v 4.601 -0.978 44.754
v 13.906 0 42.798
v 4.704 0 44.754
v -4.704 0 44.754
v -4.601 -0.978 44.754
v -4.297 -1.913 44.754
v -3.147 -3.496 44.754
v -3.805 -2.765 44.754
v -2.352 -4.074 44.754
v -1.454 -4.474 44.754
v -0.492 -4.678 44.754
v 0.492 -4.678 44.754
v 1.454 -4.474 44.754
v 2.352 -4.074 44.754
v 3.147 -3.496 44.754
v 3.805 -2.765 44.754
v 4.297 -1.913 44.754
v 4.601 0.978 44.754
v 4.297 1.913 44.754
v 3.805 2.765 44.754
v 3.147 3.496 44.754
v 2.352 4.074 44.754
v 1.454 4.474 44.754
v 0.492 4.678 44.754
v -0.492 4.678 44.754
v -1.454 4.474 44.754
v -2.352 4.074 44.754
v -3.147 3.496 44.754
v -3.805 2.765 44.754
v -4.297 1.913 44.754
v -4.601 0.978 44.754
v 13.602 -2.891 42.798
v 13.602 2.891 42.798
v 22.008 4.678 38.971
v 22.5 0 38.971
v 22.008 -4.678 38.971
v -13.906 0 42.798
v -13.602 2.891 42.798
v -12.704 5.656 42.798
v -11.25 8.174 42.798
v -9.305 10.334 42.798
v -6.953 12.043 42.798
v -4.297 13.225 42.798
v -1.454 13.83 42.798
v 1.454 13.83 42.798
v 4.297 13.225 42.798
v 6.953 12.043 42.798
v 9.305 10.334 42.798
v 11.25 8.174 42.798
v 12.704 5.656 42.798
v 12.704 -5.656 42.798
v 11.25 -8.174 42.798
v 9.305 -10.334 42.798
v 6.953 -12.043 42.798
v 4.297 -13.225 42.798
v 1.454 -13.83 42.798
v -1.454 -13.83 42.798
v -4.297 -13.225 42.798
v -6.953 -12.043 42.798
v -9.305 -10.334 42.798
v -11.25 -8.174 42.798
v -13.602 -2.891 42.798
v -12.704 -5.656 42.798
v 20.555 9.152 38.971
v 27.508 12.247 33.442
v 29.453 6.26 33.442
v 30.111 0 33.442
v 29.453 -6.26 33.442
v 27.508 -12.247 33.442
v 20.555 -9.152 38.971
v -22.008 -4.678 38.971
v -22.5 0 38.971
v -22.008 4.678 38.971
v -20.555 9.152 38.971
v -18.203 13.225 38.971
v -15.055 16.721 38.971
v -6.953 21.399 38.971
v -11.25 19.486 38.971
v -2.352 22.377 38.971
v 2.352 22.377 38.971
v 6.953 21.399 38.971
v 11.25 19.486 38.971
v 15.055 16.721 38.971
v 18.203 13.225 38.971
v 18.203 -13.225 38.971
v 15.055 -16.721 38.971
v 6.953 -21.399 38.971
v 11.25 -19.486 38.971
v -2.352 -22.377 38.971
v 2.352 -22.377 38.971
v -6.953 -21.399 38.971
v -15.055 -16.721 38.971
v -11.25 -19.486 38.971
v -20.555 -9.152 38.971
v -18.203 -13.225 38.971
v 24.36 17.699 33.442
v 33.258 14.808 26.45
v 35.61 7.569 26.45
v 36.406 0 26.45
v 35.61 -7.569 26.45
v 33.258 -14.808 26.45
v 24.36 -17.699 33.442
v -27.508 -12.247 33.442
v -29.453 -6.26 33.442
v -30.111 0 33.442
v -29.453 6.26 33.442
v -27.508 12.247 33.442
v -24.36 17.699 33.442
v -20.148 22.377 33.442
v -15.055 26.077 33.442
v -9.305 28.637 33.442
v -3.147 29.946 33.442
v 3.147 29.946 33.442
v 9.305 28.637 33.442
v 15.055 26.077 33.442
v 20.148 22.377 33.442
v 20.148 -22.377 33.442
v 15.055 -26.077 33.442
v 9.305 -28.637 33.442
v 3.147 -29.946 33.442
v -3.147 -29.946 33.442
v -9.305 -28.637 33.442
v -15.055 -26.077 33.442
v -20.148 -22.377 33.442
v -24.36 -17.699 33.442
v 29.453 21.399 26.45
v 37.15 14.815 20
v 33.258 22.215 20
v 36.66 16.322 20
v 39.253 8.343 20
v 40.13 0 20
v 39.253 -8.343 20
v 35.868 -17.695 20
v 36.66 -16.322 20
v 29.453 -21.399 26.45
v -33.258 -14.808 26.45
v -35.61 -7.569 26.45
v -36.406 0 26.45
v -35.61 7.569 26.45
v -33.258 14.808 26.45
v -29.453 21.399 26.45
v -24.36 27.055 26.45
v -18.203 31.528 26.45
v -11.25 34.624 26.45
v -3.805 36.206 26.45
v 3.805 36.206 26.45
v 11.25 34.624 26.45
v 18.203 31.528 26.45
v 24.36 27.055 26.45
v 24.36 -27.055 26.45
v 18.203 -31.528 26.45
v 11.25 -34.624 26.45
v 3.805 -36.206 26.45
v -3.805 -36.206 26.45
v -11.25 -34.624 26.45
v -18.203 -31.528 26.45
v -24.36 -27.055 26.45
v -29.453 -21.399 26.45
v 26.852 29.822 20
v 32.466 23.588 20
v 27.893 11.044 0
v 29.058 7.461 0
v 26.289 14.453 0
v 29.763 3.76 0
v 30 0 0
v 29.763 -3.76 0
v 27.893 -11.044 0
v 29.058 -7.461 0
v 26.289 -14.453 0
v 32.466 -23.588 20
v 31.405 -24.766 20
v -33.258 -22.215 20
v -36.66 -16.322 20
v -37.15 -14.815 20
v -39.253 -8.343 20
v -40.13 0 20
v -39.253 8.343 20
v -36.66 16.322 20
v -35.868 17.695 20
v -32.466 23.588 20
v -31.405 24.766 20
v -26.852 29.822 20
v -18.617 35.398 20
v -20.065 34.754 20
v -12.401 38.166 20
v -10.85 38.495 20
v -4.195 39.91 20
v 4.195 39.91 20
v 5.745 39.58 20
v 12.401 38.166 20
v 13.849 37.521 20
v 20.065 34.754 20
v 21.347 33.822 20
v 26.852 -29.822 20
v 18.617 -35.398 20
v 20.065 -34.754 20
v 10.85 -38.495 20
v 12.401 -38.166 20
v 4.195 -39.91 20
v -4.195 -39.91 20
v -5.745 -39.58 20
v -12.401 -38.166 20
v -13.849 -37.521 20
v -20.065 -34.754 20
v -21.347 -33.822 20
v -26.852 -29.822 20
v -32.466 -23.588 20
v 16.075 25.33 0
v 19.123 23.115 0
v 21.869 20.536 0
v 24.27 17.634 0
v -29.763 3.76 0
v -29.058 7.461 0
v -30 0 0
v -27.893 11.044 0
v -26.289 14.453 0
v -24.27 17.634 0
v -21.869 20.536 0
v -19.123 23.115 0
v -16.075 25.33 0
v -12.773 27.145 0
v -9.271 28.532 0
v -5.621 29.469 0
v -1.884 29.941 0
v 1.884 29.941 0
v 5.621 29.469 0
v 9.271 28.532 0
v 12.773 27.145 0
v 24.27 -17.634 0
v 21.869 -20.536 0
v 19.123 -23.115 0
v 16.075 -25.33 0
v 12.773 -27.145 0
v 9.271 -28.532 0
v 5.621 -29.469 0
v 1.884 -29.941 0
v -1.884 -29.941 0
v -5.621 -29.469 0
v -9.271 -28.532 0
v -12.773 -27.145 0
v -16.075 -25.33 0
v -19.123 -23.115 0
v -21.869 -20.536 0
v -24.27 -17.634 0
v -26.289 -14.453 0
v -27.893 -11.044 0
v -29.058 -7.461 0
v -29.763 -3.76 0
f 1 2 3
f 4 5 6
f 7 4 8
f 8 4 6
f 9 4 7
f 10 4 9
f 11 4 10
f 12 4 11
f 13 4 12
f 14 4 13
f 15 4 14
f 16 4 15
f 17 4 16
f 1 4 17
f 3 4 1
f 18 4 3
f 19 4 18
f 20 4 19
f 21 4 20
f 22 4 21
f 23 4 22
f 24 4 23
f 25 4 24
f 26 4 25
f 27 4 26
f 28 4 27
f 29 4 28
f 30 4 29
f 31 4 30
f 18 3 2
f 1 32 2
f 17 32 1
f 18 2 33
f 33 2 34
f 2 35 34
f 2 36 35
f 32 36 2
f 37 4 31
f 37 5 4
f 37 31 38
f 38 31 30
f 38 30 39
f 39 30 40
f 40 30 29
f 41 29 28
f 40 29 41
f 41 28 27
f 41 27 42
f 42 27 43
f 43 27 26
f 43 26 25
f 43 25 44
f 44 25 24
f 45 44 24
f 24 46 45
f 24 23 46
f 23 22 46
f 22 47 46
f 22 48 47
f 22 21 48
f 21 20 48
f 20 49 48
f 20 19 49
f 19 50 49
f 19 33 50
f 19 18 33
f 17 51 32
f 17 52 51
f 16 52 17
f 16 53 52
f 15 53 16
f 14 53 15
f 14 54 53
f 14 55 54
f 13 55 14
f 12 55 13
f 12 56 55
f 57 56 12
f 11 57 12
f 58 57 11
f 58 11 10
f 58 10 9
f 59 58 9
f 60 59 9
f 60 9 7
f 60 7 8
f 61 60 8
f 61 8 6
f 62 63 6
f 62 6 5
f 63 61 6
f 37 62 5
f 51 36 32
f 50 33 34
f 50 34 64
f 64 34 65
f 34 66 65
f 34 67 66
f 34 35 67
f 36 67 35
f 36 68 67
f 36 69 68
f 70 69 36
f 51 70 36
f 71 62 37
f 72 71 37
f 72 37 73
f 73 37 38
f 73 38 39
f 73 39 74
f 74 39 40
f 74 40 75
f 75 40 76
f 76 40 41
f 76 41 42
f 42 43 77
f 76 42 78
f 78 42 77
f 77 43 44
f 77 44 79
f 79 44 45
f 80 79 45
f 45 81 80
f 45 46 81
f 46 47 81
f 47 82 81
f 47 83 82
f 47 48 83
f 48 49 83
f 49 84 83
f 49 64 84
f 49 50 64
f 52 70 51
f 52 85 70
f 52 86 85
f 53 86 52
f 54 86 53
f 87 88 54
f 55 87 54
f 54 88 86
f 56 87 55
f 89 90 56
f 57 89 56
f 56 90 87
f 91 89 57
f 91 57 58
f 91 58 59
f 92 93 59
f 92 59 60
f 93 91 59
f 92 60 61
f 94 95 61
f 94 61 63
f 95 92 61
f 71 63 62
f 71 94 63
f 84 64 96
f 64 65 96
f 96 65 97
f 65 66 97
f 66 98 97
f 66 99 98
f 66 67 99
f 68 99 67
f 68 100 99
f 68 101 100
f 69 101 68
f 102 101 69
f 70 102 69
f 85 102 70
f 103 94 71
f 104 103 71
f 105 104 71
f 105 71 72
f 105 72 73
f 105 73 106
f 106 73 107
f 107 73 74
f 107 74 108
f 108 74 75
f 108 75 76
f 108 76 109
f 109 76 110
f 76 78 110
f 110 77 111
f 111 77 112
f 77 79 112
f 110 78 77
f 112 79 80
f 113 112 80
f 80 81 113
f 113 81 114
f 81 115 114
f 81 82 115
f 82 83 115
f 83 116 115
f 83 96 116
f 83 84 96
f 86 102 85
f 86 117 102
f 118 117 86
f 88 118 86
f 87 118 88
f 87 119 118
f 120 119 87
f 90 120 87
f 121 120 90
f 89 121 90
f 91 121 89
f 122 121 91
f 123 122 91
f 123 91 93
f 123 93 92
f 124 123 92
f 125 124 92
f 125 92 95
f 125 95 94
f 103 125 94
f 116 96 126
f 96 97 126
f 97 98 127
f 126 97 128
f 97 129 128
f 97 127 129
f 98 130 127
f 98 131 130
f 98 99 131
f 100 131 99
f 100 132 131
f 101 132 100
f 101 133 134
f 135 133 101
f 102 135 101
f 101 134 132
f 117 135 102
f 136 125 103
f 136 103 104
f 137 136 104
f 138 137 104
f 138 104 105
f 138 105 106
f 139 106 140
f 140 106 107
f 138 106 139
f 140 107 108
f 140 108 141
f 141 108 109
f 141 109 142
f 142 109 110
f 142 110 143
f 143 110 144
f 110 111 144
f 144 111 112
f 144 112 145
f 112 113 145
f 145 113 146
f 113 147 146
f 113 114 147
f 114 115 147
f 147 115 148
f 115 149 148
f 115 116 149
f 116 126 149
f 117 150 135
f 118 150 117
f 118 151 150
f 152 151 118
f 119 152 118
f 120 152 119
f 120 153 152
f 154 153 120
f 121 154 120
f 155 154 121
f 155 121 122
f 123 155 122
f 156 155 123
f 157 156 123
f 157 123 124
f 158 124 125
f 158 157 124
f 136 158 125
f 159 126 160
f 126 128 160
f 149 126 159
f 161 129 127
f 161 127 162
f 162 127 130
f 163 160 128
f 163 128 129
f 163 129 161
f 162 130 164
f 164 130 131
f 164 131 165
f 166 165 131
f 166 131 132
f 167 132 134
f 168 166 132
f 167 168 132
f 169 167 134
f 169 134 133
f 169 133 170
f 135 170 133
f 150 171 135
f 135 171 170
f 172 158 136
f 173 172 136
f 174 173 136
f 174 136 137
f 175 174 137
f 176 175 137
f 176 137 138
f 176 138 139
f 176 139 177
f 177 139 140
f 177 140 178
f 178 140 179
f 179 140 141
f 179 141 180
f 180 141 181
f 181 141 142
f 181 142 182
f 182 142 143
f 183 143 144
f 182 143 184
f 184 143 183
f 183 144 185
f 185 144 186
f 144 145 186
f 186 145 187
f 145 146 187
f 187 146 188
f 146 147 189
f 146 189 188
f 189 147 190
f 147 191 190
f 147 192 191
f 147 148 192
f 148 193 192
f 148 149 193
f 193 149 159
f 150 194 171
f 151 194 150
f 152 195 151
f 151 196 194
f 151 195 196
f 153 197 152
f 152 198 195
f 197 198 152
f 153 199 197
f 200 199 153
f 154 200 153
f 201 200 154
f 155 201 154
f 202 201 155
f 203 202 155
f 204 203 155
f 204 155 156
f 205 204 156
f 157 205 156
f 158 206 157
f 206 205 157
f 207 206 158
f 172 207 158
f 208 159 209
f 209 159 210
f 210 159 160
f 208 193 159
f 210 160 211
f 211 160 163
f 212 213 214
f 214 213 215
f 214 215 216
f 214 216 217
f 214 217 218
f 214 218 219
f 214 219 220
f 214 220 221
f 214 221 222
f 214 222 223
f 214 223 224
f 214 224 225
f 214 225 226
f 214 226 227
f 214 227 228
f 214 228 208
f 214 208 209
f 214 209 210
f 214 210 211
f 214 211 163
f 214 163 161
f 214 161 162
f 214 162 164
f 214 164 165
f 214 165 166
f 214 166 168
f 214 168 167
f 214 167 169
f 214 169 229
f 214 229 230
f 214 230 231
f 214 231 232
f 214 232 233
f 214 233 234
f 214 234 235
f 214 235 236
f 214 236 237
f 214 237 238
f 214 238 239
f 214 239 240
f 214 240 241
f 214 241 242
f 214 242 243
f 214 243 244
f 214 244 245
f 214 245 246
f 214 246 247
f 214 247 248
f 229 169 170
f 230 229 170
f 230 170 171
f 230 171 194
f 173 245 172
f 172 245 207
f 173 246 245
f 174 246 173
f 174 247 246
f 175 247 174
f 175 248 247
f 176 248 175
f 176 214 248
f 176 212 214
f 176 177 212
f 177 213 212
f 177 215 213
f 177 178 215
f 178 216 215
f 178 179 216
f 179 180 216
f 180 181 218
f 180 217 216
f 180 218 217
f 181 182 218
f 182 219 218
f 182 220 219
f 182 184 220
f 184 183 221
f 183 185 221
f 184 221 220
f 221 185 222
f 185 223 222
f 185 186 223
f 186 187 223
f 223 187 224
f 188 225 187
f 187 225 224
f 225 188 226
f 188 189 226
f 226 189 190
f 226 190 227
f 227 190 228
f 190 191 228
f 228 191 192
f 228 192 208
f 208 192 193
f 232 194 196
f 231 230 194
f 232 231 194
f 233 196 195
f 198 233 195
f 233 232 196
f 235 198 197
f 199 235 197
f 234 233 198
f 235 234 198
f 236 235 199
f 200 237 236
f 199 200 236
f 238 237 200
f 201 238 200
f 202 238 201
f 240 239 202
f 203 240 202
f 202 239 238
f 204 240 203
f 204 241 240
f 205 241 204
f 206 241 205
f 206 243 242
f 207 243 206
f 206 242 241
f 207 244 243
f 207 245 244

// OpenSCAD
// Mushroom button
base_r = 30;
base_h = 20;
top_r = 45;

hull() {
	// Top
	translate([0,0,0])
	difference() {
		sphere(top_r);
		translate([0,0,-top_r+base_h]) cylinder(r=top_r+1, h=2*top_r, $fn=50, center=true);
	};
	
	// Base
	cylinder(r=base_r, h=base_h, $fn=50);
	
	// 45° Cone to make it printable
	//cone_h = 
}
